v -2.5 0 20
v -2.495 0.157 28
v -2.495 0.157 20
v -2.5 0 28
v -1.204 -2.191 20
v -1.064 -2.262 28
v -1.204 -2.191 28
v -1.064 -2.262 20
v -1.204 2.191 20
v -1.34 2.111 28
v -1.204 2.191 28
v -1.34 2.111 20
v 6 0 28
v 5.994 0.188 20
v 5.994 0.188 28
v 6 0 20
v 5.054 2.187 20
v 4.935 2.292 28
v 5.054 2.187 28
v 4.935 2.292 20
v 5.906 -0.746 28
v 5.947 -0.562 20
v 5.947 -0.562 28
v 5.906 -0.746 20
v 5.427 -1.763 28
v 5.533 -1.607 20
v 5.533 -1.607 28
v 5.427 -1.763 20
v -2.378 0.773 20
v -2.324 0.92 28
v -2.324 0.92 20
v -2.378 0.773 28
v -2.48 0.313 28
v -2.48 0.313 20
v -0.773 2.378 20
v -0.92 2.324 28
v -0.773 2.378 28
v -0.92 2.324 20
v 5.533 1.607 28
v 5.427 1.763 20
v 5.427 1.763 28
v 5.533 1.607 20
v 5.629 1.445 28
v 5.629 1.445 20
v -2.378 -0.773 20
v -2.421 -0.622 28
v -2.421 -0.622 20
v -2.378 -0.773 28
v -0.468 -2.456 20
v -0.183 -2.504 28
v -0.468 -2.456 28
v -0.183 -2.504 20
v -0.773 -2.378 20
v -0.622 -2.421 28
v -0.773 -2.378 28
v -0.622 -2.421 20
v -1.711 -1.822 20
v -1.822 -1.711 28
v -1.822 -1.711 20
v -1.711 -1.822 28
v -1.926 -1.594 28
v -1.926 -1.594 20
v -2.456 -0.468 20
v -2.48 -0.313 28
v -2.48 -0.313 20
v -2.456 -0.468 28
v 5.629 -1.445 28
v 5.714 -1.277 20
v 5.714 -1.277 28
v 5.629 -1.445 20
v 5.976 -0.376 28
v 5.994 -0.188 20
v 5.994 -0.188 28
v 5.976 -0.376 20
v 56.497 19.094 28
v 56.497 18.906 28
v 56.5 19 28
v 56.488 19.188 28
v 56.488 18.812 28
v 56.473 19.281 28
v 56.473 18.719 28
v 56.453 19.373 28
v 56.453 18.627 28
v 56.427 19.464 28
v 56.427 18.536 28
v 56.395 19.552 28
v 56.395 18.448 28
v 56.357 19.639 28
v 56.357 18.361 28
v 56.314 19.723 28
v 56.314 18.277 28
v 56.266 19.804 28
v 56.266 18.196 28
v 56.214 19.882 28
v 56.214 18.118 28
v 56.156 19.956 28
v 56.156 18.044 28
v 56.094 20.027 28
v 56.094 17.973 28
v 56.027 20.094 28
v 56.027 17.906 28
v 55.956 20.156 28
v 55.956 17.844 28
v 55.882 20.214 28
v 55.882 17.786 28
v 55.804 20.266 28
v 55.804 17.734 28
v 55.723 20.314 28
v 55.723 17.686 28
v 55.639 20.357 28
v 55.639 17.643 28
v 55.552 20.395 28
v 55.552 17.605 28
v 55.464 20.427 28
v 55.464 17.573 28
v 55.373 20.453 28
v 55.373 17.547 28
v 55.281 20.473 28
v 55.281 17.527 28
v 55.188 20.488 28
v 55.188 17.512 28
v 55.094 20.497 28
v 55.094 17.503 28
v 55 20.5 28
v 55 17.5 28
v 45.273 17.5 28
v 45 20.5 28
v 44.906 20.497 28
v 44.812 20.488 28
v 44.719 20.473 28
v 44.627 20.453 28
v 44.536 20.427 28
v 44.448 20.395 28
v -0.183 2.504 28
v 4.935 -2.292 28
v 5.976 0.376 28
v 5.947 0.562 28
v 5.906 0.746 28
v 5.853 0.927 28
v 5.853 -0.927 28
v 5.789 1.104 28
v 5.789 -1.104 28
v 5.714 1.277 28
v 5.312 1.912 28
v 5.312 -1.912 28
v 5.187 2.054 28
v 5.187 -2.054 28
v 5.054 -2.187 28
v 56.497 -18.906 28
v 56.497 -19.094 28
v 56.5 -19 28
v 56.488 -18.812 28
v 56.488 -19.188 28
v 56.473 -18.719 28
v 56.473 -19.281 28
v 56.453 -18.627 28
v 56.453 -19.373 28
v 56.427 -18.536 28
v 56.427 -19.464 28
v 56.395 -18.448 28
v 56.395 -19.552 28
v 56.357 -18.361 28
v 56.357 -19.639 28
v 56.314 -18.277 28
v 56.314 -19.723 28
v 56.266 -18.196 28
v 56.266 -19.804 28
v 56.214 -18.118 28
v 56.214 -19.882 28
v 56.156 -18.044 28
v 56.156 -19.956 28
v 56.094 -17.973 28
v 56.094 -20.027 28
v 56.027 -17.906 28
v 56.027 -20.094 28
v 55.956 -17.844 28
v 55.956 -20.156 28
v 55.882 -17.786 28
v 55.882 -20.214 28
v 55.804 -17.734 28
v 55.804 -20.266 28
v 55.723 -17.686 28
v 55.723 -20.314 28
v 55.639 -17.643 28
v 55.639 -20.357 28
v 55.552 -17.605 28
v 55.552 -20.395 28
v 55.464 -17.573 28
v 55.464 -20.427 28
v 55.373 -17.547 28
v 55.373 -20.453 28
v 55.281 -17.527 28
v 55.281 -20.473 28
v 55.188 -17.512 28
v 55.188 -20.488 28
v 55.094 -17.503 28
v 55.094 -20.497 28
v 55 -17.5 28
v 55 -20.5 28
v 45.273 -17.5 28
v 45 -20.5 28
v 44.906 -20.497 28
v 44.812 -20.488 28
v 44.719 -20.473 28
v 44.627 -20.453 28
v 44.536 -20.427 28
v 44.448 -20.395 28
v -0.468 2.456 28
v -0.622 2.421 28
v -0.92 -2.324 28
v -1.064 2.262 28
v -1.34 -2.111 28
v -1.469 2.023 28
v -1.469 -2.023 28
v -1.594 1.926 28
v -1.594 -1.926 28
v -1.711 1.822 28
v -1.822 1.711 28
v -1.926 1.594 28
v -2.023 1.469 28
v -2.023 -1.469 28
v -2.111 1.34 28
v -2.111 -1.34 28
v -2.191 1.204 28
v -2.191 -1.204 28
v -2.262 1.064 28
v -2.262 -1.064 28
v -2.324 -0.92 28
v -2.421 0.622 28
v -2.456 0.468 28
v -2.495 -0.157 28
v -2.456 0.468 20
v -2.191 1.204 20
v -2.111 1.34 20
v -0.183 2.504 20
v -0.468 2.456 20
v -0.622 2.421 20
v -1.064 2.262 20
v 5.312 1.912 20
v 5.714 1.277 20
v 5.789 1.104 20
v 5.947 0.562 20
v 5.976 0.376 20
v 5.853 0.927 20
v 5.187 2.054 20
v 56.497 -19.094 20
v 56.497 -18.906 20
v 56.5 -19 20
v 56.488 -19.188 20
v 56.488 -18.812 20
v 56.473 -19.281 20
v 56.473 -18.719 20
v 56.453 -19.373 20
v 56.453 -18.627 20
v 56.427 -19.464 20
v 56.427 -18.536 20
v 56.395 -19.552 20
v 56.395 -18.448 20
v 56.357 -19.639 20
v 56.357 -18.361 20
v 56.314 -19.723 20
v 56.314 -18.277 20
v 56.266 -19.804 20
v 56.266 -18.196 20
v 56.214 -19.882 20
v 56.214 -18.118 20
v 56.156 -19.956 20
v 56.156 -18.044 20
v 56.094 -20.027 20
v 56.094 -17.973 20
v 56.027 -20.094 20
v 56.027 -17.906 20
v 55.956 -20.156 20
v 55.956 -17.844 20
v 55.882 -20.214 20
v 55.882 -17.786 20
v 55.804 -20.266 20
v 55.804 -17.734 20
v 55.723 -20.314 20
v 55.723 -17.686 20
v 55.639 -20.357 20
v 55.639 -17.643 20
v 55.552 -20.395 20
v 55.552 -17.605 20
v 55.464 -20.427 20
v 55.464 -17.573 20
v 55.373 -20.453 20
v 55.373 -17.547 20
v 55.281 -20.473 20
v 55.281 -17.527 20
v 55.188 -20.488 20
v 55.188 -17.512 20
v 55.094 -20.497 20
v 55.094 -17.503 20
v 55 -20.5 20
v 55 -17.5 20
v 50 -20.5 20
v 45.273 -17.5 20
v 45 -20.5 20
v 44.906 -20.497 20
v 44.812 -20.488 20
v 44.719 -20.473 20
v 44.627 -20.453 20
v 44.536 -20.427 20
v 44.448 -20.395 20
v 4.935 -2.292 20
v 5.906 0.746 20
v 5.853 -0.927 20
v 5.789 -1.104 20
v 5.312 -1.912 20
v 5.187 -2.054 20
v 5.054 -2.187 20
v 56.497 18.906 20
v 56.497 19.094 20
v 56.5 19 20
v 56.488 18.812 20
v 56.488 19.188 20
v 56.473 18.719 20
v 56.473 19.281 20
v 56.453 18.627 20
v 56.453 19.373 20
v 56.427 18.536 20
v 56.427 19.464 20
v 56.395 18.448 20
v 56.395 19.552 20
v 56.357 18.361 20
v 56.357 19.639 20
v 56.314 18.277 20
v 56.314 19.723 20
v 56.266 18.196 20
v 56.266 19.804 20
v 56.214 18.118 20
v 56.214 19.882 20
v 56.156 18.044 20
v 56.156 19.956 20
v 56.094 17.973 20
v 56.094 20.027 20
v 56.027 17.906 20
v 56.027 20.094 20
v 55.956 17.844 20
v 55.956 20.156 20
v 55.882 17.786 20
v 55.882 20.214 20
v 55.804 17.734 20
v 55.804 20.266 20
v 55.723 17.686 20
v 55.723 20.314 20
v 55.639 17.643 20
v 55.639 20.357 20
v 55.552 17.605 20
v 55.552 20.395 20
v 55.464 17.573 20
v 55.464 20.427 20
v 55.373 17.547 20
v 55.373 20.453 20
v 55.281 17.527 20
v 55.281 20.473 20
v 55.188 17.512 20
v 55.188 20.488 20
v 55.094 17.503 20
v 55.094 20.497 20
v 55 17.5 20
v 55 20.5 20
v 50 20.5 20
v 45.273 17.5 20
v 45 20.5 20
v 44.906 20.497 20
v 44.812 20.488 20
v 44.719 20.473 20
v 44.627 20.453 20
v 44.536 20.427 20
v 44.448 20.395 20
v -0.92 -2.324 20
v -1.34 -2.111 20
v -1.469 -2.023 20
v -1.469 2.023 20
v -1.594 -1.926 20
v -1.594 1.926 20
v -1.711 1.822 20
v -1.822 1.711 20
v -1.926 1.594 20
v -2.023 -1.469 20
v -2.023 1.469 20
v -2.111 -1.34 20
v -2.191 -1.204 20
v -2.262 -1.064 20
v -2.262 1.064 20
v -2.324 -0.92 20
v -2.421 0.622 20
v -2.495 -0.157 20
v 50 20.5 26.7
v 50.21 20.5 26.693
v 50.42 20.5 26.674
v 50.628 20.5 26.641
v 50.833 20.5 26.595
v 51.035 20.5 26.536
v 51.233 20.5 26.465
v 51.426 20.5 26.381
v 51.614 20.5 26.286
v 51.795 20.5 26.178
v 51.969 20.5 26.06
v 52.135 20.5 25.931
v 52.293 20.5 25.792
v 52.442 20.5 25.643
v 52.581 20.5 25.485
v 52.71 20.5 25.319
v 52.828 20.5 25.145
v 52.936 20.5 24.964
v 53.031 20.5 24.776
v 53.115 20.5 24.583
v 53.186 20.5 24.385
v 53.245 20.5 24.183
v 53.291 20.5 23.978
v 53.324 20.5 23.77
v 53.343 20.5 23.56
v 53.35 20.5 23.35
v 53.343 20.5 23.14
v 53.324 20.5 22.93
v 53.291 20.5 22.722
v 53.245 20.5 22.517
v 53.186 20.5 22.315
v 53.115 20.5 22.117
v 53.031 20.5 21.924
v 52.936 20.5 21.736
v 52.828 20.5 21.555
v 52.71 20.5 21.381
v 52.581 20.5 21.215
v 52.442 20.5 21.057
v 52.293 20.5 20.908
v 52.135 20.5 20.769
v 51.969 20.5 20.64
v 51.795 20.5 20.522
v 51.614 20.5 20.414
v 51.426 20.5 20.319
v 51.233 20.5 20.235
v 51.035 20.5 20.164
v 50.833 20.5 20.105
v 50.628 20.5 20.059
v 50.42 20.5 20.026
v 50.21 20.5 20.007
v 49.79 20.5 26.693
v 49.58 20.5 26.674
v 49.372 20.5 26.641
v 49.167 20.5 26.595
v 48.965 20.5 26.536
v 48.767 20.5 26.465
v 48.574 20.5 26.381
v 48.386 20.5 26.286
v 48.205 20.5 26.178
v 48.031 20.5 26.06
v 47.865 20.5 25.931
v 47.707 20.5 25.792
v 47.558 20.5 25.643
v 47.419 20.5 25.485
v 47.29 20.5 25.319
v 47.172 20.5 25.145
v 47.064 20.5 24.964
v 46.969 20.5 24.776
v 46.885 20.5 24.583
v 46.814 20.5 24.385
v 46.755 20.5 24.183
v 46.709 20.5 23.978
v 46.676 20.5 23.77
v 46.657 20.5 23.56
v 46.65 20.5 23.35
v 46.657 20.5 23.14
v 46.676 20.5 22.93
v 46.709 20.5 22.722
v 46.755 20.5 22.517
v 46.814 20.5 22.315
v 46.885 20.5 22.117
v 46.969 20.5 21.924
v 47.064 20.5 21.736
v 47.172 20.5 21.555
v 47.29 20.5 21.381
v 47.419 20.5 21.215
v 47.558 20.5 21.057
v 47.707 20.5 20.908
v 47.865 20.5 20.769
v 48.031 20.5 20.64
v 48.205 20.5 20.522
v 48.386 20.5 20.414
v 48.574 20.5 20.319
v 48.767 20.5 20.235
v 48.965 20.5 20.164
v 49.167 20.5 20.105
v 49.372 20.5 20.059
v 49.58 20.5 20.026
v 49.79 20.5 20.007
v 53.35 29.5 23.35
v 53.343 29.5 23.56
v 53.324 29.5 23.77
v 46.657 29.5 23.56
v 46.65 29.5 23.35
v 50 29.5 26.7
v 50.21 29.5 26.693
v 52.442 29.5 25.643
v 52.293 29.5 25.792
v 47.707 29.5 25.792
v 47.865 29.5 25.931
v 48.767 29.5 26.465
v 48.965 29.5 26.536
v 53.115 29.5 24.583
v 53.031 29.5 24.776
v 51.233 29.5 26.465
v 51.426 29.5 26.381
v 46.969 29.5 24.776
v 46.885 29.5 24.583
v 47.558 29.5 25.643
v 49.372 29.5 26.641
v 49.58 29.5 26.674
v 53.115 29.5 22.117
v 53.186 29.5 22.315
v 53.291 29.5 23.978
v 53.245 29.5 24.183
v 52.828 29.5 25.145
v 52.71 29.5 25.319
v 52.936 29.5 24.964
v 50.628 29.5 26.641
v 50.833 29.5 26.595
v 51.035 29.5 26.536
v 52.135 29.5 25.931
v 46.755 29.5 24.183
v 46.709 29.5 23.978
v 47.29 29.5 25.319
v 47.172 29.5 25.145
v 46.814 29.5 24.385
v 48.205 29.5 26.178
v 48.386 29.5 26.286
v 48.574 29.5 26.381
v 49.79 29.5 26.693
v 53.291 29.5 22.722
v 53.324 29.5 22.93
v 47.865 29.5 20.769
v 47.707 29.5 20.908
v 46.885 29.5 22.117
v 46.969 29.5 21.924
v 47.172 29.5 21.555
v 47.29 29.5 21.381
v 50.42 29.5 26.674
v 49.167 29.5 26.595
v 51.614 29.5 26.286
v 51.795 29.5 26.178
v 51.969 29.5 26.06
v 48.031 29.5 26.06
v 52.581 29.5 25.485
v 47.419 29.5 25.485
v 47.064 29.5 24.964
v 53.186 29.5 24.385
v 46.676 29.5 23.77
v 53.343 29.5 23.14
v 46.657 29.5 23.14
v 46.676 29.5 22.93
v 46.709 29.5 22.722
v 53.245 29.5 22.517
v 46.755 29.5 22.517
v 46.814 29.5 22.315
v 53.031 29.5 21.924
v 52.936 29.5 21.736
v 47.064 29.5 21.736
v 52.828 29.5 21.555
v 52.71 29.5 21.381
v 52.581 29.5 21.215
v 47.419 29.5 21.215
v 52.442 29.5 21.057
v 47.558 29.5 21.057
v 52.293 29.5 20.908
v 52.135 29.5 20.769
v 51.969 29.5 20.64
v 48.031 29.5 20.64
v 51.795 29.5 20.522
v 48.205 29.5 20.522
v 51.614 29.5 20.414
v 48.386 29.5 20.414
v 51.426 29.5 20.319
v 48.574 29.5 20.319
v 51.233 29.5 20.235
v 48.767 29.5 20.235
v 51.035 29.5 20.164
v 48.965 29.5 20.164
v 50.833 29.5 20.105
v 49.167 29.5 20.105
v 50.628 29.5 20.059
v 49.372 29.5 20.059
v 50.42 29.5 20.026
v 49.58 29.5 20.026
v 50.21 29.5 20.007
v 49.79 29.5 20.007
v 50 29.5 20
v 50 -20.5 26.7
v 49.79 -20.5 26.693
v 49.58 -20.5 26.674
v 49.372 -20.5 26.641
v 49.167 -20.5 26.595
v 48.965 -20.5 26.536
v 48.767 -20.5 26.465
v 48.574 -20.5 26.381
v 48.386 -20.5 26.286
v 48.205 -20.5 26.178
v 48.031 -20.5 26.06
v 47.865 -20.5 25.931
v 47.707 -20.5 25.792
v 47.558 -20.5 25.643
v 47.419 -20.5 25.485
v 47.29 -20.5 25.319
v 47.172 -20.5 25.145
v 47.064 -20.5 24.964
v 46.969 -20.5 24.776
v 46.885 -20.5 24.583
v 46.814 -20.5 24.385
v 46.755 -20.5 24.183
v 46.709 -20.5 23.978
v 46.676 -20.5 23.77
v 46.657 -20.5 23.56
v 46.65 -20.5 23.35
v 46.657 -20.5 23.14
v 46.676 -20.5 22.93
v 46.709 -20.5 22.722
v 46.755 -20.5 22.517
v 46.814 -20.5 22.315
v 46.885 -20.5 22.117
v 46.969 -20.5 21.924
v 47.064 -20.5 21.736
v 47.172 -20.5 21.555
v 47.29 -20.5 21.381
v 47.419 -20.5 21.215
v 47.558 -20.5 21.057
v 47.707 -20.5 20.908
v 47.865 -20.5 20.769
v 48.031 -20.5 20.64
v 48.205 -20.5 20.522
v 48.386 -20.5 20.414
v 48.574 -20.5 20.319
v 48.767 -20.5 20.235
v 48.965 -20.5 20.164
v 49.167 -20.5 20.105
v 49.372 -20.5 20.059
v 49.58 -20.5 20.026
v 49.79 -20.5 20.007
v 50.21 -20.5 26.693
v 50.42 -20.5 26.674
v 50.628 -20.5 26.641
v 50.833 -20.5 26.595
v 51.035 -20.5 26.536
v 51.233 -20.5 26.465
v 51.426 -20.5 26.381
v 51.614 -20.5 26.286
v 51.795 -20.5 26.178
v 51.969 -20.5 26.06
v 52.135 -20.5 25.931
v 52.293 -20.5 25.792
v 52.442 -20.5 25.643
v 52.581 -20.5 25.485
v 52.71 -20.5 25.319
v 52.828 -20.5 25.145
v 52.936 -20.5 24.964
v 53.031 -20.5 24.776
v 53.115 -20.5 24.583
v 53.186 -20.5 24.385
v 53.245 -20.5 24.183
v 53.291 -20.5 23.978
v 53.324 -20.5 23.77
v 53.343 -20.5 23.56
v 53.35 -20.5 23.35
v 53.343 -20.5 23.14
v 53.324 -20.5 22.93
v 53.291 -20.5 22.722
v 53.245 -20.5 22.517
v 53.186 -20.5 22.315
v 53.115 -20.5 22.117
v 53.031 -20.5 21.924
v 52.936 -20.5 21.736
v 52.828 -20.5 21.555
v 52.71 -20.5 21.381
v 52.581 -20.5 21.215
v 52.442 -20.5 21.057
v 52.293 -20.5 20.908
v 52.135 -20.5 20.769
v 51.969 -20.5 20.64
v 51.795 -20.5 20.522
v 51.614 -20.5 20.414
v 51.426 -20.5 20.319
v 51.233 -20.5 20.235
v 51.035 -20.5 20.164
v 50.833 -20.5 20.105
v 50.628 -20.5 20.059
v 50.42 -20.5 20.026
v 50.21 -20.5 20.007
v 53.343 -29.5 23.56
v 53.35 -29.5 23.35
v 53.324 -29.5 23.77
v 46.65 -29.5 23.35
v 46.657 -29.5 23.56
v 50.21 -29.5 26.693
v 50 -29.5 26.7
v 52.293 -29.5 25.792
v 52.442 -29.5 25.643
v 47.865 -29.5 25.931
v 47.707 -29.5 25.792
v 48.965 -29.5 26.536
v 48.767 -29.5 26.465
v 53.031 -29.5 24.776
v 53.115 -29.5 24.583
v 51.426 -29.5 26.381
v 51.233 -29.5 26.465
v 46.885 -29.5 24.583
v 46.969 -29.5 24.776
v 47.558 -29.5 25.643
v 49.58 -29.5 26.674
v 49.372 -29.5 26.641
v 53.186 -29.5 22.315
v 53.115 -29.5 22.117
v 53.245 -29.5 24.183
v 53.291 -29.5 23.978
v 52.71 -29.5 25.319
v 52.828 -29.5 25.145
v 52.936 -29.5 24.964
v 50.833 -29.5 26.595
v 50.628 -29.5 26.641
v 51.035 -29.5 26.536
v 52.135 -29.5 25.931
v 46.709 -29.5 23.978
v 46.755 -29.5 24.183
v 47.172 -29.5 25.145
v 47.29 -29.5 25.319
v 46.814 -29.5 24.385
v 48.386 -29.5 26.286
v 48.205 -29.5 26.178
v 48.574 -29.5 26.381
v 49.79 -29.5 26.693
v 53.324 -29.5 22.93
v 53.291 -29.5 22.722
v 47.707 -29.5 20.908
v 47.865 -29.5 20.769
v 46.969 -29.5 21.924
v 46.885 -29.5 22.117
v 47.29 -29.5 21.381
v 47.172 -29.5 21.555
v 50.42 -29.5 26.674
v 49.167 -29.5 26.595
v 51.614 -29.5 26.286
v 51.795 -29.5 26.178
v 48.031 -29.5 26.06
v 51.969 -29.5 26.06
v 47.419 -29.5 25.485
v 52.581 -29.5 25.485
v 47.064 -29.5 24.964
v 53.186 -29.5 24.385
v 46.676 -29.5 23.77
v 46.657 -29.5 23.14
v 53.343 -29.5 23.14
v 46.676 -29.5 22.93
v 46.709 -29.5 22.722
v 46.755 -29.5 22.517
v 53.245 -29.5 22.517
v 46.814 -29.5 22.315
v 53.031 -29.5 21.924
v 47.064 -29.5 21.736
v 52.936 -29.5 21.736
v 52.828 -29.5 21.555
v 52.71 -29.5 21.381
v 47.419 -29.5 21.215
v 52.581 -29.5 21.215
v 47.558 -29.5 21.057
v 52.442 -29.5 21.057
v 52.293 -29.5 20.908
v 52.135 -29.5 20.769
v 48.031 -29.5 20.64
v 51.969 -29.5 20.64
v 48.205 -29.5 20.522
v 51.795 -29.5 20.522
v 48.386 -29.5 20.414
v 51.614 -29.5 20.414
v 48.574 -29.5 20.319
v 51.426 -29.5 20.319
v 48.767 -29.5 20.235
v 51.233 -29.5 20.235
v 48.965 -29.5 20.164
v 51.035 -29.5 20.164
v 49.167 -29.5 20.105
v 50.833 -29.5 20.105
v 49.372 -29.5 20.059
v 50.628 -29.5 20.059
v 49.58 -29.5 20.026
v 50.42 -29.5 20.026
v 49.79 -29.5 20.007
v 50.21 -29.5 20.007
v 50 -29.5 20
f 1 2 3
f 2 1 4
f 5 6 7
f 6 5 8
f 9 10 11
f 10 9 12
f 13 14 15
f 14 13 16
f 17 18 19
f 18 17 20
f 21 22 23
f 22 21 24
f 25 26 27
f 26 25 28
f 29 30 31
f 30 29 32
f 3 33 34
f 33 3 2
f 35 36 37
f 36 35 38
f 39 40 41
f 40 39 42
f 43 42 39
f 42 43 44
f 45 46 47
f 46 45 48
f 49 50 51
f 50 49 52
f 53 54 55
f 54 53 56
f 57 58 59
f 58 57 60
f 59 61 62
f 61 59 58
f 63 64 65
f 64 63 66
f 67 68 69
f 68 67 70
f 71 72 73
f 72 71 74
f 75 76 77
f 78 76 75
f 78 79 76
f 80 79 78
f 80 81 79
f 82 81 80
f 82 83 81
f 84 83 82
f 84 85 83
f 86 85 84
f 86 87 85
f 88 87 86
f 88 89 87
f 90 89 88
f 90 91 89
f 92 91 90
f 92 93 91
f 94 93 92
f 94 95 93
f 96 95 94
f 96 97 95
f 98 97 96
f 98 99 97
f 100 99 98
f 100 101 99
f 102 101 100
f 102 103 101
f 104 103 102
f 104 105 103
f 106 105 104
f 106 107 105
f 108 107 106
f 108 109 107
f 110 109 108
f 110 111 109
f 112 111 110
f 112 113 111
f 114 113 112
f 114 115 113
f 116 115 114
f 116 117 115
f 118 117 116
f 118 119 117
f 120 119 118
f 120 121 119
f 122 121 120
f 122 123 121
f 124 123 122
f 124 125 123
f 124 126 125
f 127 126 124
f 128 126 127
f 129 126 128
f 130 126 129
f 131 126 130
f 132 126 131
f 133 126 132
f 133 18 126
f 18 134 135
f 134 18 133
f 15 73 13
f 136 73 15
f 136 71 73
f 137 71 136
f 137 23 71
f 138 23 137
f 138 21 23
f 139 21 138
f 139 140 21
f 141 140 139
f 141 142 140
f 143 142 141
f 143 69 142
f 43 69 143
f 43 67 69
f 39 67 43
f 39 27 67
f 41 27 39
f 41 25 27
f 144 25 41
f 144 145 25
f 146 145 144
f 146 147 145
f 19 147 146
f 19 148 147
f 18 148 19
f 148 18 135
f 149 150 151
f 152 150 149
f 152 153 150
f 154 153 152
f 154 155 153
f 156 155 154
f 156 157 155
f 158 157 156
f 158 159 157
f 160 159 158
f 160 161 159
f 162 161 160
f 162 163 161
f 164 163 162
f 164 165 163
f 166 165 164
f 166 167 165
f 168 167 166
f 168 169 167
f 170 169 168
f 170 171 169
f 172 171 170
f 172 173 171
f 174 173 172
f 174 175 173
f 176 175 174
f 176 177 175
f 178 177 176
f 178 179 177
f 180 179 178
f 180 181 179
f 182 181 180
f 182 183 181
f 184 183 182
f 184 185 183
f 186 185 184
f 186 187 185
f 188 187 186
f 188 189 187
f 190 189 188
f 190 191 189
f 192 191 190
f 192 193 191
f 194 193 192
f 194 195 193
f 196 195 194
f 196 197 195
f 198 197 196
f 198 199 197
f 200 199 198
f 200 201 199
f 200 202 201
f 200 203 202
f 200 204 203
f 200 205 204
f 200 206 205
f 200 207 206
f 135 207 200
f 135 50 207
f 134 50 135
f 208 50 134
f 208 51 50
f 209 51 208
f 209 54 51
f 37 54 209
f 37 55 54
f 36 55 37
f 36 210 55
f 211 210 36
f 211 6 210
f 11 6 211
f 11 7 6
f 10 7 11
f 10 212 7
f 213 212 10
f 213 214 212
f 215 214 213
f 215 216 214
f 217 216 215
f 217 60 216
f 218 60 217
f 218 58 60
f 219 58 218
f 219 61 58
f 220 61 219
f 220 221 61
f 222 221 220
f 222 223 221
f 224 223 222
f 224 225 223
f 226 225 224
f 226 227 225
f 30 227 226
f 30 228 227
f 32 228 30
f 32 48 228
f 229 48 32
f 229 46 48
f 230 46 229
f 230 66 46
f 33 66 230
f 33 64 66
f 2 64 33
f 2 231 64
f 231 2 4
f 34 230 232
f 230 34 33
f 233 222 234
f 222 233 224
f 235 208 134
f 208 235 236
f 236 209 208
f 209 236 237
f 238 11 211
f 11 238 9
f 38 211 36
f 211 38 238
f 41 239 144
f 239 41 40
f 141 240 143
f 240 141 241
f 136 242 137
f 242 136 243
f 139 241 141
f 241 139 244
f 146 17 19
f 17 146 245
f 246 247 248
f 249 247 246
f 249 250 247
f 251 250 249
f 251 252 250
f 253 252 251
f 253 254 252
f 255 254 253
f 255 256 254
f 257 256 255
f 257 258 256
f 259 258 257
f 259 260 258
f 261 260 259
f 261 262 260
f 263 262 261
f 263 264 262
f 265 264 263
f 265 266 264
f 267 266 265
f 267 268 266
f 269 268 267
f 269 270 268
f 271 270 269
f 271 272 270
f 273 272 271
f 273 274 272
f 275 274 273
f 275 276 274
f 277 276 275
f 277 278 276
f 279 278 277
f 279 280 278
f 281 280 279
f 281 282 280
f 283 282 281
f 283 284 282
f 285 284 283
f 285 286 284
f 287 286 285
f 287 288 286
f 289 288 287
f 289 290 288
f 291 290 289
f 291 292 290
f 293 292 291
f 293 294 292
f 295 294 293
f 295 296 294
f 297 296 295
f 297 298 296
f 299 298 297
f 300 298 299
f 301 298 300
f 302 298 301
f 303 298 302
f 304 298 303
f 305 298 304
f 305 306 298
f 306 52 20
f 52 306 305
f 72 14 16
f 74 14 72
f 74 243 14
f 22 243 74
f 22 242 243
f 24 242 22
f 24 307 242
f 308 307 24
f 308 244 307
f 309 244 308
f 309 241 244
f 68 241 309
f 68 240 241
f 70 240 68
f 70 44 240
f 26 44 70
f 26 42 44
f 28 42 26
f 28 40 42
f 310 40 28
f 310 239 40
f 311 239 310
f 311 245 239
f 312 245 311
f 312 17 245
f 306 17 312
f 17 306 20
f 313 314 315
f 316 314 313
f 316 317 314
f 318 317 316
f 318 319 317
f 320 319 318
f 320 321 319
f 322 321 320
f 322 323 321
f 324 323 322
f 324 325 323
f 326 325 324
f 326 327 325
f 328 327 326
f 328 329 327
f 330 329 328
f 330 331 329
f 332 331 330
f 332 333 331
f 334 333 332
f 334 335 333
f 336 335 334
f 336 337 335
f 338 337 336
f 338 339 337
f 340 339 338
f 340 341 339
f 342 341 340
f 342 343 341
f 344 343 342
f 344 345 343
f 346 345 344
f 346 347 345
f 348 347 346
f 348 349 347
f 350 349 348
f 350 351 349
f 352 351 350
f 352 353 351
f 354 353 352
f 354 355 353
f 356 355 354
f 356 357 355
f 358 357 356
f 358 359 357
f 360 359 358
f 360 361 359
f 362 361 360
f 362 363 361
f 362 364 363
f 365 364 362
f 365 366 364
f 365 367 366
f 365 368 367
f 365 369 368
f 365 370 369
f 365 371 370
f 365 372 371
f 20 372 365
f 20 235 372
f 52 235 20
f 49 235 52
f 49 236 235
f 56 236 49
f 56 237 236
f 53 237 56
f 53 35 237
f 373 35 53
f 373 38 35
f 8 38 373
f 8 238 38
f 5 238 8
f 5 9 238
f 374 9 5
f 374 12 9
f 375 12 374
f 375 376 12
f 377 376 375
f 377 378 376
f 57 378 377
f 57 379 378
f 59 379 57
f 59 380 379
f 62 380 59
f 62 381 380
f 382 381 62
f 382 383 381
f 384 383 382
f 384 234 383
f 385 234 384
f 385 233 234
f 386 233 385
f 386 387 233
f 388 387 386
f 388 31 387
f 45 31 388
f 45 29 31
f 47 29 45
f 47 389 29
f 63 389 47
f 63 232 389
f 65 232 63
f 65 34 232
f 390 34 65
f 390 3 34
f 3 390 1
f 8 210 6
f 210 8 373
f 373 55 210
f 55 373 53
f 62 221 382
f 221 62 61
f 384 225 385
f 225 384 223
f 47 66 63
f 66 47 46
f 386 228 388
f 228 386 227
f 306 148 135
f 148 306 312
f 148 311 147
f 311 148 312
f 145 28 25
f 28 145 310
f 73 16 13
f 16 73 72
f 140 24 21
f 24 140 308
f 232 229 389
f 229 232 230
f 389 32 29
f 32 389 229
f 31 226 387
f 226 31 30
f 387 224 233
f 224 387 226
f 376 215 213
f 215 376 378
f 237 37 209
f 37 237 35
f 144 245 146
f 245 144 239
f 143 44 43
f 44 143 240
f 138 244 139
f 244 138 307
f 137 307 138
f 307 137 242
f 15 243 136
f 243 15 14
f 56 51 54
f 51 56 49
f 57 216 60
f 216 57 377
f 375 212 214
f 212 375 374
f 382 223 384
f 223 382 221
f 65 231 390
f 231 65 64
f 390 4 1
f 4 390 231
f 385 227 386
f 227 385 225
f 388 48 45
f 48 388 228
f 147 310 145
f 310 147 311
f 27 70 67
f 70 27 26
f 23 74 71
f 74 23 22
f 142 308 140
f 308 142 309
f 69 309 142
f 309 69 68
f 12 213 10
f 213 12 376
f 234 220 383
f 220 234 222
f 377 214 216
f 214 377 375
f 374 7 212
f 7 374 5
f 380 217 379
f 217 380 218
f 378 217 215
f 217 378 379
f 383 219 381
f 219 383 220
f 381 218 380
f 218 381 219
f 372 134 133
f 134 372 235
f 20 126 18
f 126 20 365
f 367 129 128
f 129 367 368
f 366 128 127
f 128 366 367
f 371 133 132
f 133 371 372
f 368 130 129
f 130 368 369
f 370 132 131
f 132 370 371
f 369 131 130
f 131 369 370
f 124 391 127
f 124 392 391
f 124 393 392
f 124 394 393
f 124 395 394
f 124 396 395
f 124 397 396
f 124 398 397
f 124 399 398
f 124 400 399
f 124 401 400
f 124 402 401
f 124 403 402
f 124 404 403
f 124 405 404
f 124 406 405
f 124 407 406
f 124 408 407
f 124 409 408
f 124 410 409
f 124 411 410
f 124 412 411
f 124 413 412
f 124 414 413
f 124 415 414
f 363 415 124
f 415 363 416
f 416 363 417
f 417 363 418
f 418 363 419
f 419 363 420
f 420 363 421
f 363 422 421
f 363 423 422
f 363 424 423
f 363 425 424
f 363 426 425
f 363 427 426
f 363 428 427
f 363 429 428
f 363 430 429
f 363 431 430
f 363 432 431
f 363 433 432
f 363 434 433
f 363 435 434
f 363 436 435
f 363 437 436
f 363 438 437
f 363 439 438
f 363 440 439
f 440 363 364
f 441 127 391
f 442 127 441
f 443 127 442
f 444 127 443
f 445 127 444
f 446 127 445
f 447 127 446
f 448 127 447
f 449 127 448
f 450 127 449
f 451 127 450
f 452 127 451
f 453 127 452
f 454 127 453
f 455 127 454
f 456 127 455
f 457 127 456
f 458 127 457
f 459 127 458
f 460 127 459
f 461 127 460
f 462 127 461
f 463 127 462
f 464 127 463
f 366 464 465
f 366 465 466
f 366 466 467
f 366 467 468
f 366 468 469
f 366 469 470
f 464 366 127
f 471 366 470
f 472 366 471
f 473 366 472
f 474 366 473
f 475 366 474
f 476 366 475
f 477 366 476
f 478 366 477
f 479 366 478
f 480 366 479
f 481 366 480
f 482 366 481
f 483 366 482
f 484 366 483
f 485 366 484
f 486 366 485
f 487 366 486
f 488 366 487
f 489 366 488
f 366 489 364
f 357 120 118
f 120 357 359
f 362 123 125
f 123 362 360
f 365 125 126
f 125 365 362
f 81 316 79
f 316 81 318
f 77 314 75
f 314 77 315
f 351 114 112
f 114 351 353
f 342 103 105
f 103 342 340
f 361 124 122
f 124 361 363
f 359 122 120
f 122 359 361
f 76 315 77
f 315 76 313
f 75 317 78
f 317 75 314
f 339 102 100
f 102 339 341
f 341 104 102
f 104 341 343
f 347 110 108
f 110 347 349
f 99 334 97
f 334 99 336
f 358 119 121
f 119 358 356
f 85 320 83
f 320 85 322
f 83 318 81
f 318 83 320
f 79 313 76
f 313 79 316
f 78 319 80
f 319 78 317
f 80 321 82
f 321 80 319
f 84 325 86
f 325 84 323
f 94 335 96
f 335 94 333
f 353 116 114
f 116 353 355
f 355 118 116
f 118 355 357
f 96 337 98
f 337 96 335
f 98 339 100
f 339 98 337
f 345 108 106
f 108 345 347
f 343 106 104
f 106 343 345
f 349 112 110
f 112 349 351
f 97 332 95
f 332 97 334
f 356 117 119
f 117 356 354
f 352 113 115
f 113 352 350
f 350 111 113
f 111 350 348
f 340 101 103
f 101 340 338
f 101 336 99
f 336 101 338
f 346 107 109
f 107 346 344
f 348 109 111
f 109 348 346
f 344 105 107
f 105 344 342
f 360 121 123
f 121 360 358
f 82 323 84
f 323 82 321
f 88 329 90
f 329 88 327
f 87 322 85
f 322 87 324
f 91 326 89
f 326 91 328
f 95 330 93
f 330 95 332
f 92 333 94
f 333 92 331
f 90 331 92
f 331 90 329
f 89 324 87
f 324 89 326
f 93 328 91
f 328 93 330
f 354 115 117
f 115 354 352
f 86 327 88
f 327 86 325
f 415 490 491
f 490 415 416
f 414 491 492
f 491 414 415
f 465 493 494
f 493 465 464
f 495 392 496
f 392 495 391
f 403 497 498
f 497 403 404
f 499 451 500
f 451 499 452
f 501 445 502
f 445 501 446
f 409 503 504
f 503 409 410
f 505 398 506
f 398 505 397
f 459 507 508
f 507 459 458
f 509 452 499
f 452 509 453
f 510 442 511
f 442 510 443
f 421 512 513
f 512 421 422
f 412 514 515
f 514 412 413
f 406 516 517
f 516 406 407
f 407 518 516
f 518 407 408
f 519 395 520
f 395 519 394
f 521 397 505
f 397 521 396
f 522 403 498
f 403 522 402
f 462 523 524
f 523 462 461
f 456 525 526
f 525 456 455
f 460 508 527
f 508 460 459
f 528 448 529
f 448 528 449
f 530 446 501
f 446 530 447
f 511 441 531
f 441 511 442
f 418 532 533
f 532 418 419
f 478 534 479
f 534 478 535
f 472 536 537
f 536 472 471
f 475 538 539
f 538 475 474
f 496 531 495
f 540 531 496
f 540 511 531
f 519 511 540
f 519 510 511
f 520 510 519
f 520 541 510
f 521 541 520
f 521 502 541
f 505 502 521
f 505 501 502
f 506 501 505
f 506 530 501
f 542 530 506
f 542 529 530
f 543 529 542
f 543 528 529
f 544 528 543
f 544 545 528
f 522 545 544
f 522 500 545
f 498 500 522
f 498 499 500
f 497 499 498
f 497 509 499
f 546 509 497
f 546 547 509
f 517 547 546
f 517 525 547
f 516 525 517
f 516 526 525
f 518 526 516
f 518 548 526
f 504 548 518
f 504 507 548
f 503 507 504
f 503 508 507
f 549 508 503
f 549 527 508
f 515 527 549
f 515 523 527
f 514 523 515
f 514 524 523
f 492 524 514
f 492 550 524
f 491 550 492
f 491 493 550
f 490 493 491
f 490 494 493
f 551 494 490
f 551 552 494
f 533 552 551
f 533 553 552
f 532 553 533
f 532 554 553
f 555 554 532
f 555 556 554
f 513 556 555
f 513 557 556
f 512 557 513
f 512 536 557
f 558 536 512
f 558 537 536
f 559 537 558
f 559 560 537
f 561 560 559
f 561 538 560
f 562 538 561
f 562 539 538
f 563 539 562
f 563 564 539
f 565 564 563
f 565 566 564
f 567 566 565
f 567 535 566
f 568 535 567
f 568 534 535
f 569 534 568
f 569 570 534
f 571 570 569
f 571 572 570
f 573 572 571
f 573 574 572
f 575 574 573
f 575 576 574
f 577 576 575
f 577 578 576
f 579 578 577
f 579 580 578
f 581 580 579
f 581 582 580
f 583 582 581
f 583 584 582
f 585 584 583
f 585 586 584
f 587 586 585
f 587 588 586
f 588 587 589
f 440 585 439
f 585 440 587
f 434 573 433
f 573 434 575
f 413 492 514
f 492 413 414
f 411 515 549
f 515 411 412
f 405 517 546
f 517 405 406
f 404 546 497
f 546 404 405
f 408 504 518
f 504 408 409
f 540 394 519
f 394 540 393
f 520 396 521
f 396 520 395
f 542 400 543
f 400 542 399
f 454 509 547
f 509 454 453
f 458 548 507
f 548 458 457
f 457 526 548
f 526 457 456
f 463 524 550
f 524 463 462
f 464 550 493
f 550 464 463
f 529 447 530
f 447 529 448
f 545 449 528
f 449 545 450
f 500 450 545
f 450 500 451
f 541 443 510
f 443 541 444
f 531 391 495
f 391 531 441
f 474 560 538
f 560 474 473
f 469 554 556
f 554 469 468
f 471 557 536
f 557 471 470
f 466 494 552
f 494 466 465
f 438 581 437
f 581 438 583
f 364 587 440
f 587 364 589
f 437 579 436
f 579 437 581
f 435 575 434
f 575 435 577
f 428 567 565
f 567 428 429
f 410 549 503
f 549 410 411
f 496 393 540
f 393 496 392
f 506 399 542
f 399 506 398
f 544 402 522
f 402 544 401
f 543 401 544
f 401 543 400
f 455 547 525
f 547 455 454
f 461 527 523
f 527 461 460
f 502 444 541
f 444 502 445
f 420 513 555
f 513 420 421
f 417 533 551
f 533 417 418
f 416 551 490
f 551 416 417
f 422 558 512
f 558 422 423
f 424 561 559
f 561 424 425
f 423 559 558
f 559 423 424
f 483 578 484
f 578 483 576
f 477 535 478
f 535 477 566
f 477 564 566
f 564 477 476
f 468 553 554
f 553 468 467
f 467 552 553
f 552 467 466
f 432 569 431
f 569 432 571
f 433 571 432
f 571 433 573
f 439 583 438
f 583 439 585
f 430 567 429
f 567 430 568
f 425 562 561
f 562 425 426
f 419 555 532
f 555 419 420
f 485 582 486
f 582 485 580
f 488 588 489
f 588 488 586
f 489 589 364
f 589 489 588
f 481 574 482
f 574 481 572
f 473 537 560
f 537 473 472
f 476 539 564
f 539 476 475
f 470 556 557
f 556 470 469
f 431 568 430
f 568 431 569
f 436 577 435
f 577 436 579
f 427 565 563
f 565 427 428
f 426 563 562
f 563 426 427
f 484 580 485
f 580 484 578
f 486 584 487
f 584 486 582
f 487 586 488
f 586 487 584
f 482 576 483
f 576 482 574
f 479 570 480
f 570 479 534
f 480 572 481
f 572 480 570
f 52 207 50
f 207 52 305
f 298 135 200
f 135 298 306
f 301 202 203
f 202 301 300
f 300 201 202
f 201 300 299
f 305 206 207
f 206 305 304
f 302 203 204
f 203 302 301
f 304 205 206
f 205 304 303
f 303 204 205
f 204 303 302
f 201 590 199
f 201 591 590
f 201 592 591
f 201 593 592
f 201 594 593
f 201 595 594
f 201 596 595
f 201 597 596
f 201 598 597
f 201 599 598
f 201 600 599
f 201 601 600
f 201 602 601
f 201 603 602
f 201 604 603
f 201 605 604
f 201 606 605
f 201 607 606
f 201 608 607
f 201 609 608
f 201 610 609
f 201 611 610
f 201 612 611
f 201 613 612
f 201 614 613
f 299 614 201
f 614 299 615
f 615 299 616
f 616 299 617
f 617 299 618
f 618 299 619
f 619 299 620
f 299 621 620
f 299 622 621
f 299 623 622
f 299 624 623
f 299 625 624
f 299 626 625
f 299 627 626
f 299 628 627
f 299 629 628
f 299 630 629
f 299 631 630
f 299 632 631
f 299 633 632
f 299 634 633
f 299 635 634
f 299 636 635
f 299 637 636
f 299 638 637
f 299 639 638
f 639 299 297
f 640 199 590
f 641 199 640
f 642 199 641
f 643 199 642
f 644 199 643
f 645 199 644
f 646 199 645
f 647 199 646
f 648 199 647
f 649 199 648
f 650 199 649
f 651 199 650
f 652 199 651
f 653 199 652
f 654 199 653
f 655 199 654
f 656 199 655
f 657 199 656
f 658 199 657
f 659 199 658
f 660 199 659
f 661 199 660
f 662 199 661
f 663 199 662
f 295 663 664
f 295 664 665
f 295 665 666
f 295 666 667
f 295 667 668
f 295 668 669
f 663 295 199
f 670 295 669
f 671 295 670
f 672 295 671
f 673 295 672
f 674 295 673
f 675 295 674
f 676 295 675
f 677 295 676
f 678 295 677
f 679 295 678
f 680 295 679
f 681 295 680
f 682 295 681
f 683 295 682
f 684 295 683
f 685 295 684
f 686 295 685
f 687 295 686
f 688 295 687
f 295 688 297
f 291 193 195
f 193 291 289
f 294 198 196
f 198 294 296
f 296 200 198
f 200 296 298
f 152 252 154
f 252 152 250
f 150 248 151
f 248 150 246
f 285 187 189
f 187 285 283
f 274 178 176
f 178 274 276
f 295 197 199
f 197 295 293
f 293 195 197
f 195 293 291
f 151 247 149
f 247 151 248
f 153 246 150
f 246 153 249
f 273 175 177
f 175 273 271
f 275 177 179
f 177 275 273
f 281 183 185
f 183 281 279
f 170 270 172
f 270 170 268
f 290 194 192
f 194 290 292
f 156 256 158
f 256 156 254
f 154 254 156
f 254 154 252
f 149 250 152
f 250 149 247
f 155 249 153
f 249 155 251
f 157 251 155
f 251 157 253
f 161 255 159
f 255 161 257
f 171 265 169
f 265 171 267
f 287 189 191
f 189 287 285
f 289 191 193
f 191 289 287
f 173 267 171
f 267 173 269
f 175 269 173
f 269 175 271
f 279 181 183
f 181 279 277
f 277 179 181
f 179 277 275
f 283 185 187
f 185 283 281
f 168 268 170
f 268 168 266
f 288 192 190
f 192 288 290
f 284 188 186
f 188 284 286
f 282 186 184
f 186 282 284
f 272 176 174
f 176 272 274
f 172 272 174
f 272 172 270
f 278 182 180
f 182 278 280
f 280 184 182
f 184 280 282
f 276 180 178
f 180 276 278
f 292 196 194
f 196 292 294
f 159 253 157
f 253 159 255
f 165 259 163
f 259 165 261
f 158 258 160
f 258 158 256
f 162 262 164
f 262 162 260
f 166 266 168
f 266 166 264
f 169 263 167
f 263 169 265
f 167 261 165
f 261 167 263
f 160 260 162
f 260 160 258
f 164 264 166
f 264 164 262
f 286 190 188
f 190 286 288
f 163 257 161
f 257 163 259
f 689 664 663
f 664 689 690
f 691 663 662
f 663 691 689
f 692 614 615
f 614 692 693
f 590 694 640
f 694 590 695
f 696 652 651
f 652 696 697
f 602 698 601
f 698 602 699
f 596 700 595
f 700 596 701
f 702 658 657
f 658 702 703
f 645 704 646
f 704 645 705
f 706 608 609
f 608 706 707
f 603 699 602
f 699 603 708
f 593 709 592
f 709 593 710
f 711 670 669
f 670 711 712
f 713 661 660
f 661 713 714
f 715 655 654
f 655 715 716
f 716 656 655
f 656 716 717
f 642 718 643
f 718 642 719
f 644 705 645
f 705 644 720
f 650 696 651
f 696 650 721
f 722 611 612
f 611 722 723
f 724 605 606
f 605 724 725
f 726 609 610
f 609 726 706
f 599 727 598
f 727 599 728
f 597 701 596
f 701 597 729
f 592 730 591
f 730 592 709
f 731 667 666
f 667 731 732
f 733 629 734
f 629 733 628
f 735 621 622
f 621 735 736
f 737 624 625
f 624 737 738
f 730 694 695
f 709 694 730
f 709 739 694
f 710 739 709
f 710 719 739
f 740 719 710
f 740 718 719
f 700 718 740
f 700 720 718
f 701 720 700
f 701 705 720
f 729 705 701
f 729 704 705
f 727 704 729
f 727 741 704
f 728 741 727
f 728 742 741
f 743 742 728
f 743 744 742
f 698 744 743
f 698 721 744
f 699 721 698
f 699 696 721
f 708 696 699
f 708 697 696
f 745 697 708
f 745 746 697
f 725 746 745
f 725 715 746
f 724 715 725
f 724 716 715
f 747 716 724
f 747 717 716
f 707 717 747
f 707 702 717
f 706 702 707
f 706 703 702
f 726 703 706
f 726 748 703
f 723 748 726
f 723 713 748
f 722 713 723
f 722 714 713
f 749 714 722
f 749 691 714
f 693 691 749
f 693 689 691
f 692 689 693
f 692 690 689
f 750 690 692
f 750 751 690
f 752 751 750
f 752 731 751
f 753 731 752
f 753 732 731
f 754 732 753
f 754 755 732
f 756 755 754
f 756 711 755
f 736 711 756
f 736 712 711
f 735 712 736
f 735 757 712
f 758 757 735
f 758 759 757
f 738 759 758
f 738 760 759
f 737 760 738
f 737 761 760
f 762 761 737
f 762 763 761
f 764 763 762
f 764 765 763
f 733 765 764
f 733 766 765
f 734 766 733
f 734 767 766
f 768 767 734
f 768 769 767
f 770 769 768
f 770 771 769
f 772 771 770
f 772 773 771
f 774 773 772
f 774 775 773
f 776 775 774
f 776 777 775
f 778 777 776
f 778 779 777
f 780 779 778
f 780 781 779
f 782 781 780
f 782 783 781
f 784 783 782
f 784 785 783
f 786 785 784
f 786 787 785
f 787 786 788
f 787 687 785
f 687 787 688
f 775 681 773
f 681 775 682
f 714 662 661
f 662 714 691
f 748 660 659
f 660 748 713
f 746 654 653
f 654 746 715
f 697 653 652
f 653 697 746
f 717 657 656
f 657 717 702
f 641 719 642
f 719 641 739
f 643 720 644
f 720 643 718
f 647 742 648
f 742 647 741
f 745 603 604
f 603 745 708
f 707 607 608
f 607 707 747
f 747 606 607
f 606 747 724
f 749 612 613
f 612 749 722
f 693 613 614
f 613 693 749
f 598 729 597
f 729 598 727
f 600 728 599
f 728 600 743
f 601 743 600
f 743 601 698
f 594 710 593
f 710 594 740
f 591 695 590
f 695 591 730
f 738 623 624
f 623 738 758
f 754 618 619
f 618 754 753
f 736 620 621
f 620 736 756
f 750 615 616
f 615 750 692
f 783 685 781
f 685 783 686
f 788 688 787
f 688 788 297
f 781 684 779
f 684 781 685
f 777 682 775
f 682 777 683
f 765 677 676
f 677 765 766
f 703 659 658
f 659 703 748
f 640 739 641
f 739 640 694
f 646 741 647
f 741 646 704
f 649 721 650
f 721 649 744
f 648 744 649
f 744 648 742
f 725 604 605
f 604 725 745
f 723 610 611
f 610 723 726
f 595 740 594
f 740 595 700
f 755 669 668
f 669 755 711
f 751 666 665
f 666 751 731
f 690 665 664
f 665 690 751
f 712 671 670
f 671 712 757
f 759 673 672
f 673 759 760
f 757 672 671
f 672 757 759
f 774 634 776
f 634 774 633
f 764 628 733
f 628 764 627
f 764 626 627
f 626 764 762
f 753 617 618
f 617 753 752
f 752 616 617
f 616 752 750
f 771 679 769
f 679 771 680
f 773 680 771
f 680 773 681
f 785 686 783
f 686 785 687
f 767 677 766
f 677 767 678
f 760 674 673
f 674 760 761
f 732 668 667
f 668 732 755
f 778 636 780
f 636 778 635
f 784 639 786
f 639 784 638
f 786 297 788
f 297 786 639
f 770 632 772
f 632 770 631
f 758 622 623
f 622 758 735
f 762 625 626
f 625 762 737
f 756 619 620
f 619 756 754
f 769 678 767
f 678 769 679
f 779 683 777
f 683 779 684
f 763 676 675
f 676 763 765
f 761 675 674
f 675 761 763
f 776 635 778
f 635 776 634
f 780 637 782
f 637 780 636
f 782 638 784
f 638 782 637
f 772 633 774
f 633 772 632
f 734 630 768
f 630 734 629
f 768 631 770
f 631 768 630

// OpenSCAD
$fn=100;

module side() {
    union() {
        hull() {
            translate([0,0,0]) cylinder(d=5,h=8);
            translate([3,0,0]) cylinder(d=6,h=8);
        }
        
        hull() {
            translate([0,3/2,0]) cylinder(d=2,h=8);
            translate([45,19,0]) cylinder(d=3,h=8);
        }
        
        translate([45,19,0]) {
            hull() {
                cylinder(d=3,h=8);
                translate([10,0,0]) cylinder(d=3,h=8);
            }
        }
        
        translate([50,25,3.35]) rotate([90,0,0]) cylinder(d=6.7,h=9, center=true);
    }
}

translate([0,0,20]) {
    side();
    mirror([0,1,0]) side();
}
